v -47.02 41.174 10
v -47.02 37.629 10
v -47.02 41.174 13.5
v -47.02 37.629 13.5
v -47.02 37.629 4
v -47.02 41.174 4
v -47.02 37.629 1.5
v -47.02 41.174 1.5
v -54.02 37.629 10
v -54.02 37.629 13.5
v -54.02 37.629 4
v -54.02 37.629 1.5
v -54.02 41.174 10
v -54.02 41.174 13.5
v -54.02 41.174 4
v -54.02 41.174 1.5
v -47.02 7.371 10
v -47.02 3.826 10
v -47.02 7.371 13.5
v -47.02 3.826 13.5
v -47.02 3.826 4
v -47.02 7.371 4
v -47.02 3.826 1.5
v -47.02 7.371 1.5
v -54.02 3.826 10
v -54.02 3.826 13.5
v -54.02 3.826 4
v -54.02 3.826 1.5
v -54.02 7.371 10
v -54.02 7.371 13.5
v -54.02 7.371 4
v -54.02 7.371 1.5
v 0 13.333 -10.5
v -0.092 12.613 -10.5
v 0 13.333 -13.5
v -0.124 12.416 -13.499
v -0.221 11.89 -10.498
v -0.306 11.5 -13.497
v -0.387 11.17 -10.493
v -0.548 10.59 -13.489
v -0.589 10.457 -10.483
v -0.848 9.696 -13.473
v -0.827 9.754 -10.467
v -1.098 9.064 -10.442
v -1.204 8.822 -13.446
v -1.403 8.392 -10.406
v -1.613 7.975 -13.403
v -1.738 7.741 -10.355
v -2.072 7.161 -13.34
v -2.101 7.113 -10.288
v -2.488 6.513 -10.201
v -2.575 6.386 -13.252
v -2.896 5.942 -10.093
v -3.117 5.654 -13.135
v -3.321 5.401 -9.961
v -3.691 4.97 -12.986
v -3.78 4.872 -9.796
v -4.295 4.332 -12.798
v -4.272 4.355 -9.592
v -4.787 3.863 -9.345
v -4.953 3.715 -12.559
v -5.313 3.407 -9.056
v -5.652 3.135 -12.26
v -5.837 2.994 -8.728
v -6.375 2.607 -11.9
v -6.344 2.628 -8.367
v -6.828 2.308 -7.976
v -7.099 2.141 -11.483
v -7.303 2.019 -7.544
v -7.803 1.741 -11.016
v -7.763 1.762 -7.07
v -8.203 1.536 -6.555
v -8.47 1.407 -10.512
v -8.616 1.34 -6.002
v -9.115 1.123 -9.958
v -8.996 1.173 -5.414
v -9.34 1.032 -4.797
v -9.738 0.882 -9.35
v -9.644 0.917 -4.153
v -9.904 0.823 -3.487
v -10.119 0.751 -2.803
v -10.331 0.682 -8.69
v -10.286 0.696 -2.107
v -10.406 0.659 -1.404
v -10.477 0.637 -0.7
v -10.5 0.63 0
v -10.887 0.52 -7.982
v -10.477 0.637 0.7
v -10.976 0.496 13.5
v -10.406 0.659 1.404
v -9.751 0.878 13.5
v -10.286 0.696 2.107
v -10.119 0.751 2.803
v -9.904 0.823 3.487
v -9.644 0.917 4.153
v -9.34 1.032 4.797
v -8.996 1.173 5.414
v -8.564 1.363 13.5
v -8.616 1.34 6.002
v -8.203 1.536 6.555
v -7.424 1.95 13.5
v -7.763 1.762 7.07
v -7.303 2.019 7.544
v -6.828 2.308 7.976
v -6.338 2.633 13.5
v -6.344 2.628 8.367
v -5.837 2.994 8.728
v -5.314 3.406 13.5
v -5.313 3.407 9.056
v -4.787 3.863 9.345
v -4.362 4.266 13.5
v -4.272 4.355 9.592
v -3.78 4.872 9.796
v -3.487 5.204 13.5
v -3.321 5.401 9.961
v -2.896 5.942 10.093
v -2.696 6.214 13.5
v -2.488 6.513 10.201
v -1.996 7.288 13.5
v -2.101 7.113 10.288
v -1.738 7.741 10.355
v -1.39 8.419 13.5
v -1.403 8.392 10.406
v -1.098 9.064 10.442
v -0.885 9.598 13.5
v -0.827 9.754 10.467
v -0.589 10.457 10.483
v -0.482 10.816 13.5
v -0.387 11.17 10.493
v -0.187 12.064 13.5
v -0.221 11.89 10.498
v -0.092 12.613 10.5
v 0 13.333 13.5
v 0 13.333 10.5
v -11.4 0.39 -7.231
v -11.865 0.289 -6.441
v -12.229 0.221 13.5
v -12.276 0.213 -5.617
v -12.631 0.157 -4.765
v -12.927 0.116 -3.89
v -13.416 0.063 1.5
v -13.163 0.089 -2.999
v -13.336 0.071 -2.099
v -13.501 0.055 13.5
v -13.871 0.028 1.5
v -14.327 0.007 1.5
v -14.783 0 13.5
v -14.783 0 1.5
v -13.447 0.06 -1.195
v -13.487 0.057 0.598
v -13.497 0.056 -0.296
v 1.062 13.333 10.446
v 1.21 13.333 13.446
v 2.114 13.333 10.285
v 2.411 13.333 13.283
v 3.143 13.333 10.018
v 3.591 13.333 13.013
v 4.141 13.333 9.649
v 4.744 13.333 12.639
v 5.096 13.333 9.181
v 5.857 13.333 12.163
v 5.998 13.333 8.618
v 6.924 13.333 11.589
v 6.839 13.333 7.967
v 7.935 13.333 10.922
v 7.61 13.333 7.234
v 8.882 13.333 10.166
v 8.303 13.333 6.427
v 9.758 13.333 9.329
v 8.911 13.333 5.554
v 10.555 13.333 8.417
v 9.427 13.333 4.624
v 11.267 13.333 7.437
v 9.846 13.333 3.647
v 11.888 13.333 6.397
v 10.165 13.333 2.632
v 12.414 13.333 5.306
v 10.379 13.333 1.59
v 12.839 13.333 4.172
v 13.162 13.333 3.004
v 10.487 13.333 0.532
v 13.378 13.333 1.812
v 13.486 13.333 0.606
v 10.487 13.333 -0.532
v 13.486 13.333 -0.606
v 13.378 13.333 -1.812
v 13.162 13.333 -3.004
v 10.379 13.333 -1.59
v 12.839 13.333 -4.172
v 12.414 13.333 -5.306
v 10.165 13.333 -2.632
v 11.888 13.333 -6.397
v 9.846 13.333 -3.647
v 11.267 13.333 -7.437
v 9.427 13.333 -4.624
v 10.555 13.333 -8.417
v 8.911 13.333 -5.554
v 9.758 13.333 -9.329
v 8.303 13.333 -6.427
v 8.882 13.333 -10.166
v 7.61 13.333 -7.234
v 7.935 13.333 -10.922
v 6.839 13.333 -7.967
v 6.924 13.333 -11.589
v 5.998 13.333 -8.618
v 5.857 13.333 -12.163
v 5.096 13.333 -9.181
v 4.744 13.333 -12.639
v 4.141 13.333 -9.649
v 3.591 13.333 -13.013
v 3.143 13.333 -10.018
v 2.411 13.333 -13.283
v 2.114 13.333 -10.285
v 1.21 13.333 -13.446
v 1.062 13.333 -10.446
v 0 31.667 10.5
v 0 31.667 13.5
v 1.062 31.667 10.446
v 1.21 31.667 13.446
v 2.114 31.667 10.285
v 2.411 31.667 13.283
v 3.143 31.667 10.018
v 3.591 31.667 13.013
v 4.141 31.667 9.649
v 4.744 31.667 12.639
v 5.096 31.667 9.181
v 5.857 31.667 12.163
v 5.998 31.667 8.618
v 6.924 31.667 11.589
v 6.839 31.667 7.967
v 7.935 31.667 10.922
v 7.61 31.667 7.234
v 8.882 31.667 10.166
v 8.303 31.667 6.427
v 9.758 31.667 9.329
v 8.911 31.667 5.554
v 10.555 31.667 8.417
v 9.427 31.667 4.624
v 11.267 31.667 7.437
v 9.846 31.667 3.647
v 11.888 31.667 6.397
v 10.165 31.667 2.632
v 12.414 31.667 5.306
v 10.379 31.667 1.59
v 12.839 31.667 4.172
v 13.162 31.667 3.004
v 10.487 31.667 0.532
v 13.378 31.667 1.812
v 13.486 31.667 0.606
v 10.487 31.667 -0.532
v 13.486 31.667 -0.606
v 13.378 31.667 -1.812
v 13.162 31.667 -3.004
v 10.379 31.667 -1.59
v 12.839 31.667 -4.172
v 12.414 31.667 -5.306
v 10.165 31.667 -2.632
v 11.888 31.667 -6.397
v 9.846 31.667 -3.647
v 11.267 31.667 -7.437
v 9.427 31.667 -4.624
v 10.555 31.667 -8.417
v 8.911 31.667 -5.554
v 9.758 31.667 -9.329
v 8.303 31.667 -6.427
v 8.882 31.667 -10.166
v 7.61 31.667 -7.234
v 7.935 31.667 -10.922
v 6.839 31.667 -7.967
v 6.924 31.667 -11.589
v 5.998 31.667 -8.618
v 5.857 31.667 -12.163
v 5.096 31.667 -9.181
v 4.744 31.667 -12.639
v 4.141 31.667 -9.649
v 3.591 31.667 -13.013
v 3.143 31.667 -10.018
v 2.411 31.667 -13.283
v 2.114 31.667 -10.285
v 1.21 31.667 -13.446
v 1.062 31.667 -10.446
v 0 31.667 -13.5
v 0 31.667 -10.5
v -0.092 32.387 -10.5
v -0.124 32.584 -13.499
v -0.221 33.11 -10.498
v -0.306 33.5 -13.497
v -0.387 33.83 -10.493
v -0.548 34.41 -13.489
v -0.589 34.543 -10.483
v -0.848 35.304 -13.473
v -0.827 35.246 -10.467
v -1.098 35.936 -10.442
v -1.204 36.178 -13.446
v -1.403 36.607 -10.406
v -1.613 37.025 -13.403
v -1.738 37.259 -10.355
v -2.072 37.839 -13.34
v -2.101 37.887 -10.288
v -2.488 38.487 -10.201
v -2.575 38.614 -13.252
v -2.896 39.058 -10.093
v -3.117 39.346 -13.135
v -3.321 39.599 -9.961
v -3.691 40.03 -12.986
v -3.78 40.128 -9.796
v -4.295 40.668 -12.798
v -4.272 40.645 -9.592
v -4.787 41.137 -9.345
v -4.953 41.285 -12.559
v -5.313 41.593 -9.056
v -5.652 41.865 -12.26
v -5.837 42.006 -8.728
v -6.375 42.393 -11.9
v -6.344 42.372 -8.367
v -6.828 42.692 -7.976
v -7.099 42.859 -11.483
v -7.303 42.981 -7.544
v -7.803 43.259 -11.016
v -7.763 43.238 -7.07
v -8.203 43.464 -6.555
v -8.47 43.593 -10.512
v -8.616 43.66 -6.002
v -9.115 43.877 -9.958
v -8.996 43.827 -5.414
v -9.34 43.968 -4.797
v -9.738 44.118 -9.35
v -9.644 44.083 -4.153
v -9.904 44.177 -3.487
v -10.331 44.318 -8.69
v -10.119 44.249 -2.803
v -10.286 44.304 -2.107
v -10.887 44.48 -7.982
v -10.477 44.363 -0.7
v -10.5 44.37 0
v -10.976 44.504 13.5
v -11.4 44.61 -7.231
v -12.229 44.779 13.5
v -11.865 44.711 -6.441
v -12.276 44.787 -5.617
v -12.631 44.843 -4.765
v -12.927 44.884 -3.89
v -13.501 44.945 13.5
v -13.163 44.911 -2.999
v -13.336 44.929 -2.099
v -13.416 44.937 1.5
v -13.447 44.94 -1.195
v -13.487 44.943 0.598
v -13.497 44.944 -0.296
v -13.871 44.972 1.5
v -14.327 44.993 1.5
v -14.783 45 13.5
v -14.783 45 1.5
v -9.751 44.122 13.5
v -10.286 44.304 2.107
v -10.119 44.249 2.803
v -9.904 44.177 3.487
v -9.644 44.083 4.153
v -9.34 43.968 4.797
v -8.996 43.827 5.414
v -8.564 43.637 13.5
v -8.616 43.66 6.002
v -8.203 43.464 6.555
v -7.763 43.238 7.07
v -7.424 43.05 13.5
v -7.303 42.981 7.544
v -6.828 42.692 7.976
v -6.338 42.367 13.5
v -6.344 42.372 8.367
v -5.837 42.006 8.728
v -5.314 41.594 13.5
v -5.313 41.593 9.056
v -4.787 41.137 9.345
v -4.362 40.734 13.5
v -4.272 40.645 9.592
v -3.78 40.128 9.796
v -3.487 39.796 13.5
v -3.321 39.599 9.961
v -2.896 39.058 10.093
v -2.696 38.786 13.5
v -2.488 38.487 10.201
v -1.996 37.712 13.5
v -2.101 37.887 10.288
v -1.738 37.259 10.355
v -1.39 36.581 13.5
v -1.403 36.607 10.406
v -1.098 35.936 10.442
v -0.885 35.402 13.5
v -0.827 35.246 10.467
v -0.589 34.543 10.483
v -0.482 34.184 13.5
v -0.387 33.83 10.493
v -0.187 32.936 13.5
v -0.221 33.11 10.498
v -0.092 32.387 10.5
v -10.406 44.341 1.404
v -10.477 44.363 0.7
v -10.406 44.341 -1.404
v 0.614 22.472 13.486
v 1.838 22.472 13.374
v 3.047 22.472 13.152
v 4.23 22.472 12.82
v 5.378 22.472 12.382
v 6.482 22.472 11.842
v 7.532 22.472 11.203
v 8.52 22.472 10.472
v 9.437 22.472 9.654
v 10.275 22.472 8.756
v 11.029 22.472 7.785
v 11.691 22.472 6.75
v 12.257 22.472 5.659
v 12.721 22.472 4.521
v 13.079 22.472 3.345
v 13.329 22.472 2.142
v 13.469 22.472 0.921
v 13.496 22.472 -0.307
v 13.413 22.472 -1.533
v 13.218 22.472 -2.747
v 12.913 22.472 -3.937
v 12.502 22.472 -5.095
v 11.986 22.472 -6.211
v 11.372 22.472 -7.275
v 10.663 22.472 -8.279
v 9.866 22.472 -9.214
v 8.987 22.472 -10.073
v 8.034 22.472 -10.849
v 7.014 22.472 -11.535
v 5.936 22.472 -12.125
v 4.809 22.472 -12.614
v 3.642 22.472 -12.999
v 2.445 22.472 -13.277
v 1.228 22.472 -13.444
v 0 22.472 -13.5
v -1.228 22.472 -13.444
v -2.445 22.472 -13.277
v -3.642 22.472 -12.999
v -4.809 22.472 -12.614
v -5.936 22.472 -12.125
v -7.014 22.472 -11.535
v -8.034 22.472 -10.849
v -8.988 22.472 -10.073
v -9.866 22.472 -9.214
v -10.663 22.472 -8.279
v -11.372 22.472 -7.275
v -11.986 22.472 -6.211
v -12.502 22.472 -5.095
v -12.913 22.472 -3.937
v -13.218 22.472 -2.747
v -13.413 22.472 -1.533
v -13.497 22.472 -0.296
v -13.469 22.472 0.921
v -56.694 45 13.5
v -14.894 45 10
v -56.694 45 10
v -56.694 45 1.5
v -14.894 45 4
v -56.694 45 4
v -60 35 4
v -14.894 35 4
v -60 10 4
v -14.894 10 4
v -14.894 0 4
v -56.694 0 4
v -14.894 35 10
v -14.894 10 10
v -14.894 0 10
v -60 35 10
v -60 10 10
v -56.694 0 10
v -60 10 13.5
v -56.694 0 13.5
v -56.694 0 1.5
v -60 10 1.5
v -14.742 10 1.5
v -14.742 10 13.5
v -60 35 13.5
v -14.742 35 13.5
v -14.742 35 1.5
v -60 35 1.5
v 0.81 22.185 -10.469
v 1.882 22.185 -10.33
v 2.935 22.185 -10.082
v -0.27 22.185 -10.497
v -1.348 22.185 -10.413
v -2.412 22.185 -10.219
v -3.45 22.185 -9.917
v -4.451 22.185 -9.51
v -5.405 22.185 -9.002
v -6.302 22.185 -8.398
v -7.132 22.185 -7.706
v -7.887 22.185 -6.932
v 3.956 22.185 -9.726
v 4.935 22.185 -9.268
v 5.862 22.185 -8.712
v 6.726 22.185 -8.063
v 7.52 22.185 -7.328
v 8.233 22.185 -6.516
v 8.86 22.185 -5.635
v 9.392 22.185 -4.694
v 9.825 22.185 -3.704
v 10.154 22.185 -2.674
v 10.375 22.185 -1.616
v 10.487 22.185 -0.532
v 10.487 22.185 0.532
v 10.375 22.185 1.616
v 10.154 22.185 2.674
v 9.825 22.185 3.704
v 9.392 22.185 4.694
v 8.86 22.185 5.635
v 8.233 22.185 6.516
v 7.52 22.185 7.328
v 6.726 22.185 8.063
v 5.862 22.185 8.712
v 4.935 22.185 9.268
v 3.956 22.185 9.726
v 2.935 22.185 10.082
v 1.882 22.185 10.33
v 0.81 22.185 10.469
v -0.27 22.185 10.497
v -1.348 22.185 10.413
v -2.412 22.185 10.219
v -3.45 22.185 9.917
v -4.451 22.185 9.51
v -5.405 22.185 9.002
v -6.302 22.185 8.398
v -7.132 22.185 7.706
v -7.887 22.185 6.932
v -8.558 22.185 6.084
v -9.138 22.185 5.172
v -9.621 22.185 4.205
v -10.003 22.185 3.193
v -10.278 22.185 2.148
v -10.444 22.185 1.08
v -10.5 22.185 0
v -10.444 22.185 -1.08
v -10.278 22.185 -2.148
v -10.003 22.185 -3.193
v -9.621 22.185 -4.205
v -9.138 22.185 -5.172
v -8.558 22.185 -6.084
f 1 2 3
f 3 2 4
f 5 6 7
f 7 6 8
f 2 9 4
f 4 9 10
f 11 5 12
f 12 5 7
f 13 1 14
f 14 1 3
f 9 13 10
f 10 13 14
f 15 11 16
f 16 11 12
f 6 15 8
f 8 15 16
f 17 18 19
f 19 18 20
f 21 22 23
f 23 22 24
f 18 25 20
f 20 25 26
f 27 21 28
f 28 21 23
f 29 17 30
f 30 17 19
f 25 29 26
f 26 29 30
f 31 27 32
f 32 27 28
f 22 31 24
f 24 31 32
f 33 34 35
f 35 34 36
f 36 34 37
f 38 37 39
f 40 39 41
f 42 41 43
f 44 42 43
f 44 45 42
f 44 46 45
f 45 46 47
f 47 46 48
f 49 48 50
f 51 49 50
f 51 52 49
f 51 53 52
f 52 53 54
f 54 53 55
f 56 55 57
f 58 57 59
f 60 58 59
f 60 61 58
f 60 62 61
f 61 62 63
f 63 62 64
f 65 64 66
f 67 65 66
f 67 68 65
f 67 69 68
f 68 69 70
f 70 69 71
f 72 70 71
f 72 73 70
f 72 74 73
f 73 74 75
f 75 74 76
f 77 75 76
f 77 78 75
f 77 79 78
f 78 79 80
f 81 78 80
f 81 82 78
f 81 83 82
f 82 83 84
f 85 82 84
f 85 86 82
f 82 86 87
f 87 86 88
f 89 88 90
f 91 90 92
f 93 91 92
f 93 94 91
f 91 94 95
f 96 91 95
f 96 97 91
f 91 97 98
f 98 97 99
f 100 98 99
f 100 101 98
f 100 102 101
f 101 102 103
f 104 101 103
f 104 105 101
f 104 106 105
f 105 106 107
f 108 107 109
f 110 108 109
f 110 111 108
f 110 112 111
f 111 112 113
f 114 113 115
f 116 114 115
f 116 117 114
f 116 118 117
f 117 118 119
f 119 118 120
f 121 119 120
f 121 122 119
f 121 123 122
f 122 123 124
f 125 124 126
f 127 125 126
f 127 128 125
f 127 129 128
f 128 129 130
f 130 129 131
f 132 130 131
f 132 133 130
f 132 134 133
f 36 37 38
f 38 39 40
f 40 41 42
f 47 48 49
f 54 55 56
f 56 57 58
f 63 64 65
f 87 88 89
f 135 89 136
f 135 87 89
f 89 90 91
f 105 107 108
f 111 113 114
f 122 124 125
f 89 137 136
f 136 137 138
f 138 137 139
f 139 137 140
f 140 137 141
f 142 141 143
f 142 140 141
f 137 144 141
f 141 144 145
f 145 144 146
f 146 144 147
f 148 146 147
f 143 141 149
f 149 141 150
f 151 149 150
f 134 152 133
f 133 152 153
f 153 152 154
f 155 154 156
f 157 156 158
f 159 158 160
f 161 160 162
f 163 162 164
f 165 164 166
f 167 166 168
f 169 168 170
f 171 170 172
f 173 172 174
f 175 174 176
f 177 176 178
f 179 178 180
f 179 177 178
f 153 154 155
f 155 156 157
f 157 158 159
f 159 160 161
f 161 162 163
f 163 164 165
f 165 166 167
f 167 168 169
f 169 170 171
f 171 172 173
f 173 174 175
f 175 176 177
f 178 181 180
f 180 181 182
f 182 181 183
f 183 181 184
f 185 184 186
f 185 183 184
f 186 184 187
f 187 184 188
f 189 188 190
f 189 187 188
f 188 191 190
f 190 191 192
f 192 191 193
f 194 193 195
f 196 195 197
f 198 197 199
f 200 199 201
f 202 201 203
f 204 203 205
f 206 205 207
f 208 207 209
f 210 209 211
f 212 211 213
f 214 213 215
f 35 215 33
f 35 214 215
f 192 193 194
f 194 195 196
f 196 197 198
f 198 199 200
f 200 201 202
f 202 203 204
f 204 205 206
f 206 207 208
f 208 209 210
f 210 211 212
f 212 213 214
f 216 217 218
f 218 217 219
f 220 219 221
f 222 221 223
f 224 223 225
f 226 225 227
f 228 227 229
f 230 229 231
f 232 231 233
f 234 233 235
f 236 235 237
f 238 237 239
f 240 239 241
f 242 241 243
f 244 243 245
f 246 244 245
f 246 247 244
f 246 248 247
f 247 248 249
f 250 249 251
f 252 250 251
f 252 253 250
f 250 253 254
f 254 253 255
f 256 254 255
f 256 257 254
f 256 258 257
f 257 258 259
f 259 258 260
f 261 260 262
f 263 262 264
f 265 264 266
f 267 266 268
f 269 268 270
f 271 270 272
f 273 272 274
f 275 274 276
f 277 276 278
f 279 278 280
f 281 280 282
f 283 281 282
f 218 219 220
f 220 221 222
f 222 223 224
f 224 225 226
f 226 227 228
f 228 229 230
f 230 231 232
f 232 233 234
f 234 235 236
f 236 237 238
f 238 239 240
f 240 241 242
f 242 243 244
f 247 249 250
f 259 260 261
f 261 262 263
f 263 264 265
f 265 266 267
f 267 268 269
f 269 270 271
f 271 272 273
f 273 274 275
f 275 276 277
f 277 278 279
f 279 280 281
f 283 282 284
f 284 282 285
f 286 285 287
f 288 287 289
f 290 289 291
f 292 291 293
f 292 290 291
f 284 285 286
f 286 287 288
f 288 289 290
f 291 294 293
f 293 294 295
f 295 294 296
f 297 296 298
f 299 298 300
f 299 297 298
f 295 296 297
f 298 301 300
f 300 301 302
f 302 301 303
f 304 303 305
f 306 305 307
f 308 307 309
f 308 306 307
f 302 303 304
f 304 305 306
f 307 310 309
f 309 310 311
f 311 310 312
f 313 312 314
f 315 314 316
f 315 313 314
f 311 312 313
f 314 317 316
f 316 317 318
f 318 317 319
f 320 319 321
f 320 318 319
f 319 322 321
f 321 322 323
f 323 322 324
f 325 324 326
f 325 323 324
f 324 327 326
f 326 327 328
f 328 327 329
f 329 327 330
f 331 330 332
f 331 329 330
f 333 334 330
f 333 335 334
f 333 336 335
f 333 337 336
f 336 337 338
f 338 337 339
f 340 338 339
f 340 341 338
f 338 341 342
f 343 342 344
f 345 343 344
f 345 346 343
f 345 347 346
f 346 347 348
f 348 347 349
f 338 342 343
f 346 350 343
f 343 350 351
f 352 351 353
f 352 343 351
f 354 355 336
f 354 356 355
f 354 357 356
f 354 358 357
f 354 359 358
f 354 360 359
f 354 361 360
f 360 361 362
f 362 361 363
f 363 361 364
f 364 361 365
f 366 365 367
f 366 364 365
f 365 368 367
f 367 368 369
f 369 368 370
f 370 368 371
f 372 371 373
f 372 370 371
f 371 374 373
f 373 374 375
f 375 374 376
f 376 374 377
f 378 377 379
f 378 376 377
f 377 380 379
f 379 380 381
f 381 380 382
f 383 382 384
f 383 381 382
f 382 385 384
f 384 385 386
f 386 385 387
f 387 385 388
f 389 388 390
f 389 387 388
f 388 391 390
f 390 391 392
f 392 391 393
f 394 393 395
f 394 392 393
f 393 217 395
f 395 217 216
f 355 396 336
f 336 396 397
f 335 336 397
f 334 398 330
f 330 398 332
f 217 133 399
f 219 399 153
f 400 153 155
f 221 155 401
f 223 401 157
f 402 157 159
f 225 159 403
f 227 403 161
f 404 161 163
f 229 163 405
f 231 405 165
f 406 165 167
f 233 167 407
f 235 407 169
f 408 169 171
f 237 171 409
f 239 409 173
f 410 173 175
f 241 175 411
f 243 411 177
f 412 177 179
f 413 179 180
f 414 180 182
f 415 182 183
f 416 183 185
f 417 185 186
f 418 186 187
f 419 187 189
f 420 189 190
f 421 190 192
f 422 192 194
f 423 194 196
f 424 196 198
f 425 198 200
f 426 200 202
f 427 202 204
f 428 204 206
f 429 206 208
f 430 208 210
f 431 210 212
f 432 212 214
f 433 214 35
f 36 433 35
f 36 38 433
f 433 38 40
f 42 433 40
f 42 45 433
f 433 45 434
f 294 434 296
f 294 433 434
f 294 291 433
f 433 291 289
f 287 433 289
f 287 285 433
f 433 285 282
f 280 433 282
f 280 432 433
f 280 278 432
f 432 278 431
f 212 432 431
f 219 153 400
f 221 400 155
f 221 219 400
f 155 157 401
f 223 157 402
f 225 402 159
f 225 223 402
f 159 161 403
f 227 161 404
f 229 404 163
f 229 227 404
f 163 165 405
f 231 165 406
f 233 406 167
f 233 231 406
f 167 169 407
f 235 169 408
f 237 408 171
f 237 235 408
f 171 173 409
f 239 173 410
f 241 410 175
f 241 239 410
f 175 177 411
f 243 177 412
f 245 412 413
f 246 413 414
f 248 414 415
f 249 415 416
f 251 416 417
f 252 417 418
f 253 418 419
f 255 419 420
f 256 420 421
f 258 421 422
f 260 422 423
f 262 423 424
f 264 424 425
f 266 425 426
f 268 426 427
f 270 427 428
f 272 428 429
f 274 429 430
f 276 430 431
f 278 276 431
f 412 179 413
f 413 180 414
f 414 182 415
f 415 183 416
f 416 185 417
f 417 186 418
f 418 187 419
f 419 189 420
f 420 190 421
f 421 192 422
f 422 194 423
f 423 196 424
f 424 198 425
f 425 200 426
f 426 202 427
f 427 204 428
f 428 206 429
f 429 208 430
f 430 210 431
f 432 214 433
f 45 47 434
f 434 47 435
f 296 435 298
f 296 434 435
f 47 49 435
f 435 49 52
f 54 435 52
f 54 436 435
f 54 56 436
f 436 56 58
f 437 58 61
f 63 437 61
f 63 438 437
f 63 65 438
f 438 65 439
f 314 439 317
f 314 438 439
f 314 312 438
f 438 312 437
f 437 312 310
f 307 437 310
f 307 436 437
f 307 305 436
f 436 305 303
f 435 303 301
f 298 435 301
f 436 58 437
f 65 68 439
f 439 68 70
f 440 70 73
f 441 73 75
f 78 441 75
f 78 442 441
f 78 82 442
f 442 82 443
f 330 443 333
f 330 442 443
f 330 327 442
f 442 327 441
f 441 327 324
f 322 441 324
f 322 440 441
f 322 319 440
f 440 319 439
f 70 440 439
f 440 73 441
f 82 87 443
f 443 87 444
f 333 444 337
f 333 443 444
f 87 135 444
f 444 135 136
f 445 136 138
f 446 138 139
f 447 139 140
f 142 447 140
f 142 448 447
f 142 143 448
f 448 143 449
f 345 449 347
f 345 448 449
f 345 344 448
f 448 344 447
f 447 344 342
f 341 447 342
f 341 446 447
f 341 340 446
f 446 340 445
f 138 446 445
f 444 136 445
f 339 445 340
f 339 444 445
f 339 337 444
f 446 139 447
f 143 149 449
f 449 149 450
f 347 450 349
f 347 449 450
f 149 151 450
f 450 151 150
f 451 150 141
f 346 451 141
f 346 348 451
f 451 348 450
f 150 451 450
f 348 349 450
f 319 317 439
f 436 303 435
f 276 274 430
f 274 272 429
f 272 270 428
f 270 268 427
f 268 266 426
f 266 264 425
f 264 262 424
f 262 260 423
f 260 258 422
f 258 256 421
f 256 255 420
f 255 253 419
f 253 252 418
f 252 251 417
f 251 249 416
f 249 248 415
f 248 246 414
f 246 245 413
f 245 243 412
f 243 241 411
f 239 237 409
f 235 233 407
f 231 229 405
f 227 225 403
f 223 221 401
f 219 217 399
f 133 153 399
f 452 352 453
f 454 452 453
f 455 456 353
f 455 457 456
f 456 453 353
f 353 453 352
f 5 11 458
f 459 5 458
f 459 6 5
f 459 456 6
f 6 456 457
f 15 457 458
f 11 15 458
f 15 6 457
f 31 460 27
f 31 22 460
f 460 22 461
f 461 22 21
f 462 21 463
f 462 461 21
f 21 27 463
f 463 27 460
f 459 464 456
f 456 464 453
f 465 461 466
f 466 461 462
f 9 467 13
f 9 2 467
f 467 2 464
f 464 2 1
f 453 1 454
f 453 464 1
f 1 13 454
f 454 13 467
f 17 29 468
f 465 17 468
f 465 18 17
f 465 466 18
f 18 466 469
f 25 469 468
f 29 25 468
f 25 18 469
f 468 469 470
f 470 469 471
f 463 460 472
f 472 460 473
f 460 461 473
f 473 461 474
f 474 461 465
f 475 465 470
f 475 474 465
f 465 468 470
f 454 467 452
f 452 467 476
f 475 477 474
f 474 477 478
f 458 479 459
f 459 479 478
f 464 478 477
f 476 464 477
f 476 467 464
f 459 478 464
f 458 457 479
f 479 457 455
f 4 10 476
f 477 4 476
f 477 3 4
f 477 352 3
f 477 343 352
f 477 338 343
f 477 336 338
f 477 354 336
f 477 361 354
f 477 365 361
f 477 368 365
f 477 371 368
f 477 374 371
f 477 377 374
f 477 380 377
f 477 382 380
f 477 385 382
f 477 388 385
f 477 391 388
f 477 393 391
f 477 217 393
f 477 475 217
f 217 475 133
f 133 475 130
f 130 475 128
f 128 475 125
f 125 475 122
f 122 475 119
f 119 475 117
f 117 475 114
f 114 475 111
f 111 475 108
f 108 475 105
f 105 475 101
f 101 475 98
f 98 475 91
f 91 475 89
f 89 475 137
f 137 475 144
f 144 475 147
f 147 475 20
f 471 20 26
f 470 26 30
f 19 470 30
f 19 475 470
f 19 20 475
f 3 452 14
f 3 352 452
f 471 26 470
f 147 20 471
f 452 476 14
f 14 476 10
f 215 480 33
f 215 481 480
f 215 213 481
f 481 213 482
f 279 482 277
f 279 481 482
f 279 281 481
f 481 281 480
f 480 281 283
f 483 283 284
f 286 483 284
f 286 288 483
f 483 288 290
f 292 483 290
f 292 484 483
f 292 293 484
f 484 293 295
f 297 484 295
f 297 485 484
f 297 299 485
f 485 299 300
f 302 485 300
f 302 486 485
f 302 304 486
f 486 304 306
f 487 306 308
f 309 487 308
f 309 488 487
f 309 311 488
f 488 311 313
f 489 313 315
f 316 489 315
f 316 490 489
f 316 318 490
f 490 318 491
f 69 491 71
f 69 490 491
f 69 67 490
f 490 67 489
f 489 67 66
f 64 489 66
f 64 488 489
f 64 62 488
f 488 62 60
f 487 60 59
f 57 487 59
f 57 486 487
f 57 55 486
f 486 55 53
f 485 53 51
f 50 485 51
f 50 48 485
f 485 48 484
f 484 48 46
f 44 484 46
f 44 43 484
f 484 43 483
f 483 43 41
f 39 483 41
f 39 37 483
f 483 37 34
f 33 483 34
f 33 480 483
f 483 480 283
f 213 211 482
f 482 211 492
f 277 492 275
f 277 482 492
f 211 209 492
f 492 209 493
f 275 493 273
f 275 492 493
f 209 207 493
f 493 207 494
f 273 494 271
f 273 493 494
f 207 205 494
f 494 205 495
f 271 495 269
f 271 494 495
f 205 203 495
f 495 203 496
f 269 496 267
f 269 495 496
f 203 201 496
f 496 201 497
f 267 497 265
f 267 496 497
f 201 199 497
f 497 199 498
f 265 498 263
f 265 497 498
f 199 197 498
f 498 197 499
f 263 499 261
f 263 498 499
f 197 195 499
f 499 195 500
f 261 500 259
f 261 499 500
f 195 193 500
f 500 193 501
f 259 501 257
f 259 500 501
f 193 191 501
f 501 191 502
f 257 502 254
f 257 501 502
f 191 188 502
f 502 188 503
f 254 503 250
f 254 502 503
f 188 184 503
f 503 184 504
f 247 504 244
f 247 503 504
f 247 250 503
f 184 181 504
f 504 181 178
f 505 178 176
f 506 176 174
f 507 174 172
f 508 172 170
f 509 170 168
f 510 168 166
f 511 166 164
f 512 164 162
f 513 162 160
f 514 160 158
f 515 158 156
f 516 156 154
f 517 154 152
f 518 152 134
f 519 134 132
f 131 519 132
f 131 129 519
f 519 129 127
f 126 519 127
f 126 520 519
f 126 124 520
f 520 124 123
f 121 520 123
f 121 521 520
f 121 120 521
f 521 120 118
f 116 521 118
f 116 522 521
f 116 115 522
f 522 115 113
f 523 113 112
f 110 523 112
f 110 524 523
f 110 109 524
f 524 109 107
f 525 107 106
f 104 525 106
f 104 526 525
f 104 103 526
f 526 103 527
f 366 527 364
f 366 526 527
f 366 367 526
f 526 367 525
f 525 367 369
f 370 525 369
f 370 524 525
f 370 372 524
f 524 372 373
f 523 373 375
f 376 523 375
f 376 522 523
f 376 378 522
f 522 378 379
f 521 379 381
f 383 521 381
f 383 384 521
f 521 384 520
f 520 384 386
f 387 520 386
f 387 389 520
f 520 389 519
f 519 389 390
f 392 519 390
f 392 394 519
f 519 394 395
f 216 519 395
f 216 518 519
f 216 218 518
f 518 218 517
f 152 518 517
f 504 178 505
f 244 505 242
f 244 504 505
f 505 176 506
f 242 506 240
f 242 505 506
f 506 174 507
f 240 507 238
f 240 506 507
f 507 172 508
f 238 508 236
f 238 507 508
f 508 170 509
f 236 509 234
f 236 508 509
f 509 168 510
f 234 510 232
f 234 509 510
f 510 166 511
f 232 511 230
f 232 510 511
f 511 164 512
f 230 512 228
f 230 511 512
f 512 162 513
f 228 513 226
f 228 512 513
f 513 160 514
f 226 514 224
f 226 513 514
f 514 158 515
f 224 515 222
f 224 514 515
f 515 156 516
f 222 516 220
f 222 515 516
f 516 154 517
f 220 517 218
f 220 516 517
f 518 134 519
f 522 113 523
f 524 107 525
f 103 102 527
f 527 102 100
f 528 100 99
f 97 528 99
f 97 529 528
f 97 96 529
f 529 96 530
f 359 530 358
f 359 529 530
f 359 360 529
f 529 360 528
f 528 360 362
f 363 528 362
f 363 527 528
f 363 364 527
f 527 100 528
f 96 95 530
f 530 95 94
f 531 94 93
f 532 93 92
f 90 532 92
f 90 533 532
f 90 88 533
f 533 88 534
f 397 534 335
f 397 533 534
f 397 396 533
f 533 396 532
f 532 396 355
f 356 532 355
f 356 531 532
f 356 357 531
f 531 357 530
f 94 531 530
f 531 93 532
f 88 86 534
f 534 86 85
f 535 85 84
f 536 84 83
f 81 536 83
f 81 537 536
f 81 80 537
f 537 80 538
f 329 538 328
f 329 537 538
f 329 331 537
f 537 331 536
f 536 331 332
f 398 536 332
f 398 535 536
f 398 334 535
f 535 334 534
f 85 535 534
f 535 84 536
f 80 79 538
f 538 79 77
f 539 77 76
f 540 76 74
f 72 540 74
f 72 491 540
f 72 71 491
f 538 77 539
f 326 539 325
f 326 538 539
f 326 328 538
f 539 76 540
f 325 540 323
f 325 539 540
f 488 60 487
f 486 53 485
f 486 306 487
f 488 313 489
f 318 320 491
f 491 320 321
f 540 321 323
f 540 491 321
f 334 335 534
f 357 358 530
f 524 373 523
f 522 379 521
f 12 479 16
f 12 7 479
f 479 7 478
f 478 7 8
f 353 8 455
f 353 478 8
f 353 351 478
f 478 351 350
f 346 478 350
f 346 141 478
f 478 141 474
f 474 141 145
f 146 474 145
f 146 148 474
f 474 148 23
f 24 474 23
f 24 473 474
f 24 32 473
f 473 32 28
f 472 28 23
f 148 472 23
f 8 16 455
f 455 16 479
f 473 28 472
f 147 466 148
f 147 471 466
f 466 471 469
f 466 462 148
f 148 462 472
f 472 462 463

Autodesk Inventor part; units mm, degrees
ref_plane "YZ Plane" through (0, 0, 0) normal (1, 0, 0) x (0, 1, 0)
ref_plane "XZ Plane" through (0, 0, 0) normal (0, 1, 0) x (-1, 0, 0)
ref_plane "XY Plane" through (0, 0, 0) normal (0, 0, 1) x (1, 0, 0)
sketch "Sketch1" plane through (0, 0, 0) normal (0, 1, 0) x (-1, 0, 0)
  circle A0 centre (0, 0) radius 10.5
  arc A1 (0, 13.5) -> (13.4164, 1.5) centre (0, 0) ccw
  line L0 (0, 13.5) -> (60, 13.5)
  line L1 (60, 13.5) -> (60, 1.5)
  line L2 (60, 1.5) -> (13.4164, 1.5)
  dimension "d1" = 21
  dimension "d2" = 60
  dimension "d3" = 12
  dimension "d6" = 3
extrude "Extrusion1" add sketch "Sketch1" along normal blind 45
sketch "Sketch2" plane through (-60, 0, 13.5) normal (0, 0, 1) x (1, 0, 0)
  line L0 (0, 45) -> (60, 45) projected
  line L1 (0, 35) -> (3.306, 45)
  line L2 (51.1457, 45) -> (3.306, 45)
  line L3 (0, 35) -> (45.2583, 35)
  line L4 (0, 22.5) -> (103.0931, 22.5) construction
  line L5 (0, 0) -> (60, 0)
  line L6 (0, 10) -> (3.306, 0)
  line L7 (0, 10) -> (45.2583, 10)
  line L8 (45.2583, 35) -> (45.2583, 10)
  line L9 (0, 35) -> (0, 10)
  line L10 (60, 0) -> (60, 45) projected
  line L11 (0, 10) -> (0, 0)
  line L12 (0, 0) -> (60, 0) projected
  line L13 (0, 45) -> (0, 35)
  line L14 (3.306, 45) -> (0, 45)
extrude "Extrusion2" cut sketch "Sketch2" against normal blind 12 contours L0 L1 L13 | L3 L8 L7 L9 | L6 L5 L11
sketch "Sketch3" plane through (0, 45, 0) normal (0, 1, 0) x (1, 0, 0)
  line L0 (-60, -1.5) -> (-60, -13.5) projected
  line L1 (-60, -4) -> (-14.8943, -4)
  line L2 (-14.8943, -4) -> (-14.8943, -10)
  line L3 (-14.8943, -10) -> (-60, -10)
  line L4 (-60, -4) -> (-60, -10)
extrude "Extrusion3" cut sketch "Sketch3" against normal blind 45
sketch "Sketch4" plane through (0, 0, 13.5) normal (0, 0, 1) x (1, 0, 0)
  line L0 (-56.694, 0) -> (0, 0) projected
  line L1 (0, 0) -> (0, 45) projected
  line L2 (-56.694, 45) -> (0, 45) projected
  arc A0 (0, 31.6668) -> (-14.7825, 45) centre (-14.7825, 30.1387) ccw
  line L3 (0, 31.6668) -> (14.4337, 31.6668)
  line L4 (-19.4308, 22.5) -> (16.7273, 22.5) construction
  line L5 (14.4337, 31.6668) -> (14.4337, 22.5)
  line L6 (0, 13.3332) -> (14.4337, 13.3332)
  line L7 (14.4337, 13.3332) -> (14.4337, 22.5)
  arc A1 (-14.7825, 0) -> (0, 13.3332) centre (-14.7825, 14.8613) ccw
  line L8 (-14.7825, 45) -> (14.4337, 45)
  line L9 (14.4337, 45) -> (14.4337, 31.6668)
  line L10 (14.4337, 13.3332) -> (14.4337, 0)
  line L11 (14.4337, 0) -> (-14.7825, 0)
extrude "Extrusion4" cut sketch "Sketch4" against normal blind 45 contours A1 L1 L0 | L1 L6 L10 L11 | A0 L2 L1 | L1 L8 L9 L3
sketch "Sketch5" plane through (-60, 35, 13.5) normal (0, 0, 1) x (1, 0, 0)
  line L0 (45.2583, 0) -> (45.2583, -25) projected
  line L1 (12.9797, 6.1743) -> (5.9797, 6.1743)
  line L2 (5.9797, 6.1743) -> (5.9797, 2.6291)
  line L3 (5.9797, 2.6291) -> (12.9797, 2.6291)
  line L4 (12.9797, 2.6291) -> (12.9797, 6.1743)
  line L5 (45.2583, -12.5) -> (-11.096, -12.5) construction
  line L6 (12.9797, -31.1743) -> (5.9797, -31.1743)
  line L7 (5.9797, -31.1743) -> (5.9797, -27.6291)
  line L8 (5.9797, -27.6291) -> (12.9797, -27.6291)
  line L9 (12.9797, -27.6291) -> (12.9797, -31.1743)
  point P0 (60, -35)
  dimension "d16" = 7
extrude "Extrusion5" cut sketch "Sketch5" against normal blind 15
properties part number "soporte camara"
